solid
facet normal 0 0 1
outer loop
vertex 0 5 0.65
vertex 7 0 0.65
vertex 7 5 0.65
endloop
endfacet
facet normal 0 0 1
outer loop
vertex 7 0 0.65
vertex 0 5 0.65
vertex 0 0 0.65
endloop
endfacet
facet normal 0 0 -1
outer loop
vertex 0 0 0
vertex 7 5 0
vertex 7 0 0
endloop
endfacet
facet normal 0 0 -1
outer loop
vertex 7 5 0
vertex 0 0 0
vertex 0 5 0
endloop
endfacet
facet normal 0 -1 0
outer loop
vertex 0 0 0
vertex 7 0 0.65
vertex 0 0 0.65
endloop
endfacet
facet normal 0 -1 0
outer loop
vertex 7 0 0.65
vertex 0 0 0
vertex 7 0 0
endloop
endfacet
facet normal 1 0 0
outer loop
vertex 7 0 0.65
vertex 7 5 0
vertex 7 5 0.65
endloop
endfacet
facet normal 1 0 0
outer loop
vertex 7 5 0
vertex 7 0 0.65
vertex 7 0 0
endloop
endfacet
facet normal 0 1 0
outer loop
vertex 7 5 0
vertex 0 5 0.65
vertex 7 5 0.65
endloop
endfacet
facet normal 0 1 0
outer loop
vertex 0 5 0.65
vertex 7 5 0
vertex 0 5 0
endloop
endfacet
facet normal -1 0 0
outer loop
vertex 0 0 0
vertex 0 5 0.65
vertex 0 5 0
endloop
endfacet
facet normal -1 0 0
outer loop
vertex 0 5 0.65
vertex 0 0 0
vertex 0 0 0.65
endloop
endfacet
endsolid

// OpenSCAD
/* Warning, this is a very basic generator with a lot of approximation 
input data : [UFBGA, C2B, 7x5x0.65mm, 114, , A, C04-21163A]
generated by com.zoubworld.electronics.cad.model3d.Basic
Date : Sun Feb 15 10:50:49 CET 2026
*/

//body
color("black")
translate([0,0,0])
cube([7.0,5.0,0.65], center=false);
